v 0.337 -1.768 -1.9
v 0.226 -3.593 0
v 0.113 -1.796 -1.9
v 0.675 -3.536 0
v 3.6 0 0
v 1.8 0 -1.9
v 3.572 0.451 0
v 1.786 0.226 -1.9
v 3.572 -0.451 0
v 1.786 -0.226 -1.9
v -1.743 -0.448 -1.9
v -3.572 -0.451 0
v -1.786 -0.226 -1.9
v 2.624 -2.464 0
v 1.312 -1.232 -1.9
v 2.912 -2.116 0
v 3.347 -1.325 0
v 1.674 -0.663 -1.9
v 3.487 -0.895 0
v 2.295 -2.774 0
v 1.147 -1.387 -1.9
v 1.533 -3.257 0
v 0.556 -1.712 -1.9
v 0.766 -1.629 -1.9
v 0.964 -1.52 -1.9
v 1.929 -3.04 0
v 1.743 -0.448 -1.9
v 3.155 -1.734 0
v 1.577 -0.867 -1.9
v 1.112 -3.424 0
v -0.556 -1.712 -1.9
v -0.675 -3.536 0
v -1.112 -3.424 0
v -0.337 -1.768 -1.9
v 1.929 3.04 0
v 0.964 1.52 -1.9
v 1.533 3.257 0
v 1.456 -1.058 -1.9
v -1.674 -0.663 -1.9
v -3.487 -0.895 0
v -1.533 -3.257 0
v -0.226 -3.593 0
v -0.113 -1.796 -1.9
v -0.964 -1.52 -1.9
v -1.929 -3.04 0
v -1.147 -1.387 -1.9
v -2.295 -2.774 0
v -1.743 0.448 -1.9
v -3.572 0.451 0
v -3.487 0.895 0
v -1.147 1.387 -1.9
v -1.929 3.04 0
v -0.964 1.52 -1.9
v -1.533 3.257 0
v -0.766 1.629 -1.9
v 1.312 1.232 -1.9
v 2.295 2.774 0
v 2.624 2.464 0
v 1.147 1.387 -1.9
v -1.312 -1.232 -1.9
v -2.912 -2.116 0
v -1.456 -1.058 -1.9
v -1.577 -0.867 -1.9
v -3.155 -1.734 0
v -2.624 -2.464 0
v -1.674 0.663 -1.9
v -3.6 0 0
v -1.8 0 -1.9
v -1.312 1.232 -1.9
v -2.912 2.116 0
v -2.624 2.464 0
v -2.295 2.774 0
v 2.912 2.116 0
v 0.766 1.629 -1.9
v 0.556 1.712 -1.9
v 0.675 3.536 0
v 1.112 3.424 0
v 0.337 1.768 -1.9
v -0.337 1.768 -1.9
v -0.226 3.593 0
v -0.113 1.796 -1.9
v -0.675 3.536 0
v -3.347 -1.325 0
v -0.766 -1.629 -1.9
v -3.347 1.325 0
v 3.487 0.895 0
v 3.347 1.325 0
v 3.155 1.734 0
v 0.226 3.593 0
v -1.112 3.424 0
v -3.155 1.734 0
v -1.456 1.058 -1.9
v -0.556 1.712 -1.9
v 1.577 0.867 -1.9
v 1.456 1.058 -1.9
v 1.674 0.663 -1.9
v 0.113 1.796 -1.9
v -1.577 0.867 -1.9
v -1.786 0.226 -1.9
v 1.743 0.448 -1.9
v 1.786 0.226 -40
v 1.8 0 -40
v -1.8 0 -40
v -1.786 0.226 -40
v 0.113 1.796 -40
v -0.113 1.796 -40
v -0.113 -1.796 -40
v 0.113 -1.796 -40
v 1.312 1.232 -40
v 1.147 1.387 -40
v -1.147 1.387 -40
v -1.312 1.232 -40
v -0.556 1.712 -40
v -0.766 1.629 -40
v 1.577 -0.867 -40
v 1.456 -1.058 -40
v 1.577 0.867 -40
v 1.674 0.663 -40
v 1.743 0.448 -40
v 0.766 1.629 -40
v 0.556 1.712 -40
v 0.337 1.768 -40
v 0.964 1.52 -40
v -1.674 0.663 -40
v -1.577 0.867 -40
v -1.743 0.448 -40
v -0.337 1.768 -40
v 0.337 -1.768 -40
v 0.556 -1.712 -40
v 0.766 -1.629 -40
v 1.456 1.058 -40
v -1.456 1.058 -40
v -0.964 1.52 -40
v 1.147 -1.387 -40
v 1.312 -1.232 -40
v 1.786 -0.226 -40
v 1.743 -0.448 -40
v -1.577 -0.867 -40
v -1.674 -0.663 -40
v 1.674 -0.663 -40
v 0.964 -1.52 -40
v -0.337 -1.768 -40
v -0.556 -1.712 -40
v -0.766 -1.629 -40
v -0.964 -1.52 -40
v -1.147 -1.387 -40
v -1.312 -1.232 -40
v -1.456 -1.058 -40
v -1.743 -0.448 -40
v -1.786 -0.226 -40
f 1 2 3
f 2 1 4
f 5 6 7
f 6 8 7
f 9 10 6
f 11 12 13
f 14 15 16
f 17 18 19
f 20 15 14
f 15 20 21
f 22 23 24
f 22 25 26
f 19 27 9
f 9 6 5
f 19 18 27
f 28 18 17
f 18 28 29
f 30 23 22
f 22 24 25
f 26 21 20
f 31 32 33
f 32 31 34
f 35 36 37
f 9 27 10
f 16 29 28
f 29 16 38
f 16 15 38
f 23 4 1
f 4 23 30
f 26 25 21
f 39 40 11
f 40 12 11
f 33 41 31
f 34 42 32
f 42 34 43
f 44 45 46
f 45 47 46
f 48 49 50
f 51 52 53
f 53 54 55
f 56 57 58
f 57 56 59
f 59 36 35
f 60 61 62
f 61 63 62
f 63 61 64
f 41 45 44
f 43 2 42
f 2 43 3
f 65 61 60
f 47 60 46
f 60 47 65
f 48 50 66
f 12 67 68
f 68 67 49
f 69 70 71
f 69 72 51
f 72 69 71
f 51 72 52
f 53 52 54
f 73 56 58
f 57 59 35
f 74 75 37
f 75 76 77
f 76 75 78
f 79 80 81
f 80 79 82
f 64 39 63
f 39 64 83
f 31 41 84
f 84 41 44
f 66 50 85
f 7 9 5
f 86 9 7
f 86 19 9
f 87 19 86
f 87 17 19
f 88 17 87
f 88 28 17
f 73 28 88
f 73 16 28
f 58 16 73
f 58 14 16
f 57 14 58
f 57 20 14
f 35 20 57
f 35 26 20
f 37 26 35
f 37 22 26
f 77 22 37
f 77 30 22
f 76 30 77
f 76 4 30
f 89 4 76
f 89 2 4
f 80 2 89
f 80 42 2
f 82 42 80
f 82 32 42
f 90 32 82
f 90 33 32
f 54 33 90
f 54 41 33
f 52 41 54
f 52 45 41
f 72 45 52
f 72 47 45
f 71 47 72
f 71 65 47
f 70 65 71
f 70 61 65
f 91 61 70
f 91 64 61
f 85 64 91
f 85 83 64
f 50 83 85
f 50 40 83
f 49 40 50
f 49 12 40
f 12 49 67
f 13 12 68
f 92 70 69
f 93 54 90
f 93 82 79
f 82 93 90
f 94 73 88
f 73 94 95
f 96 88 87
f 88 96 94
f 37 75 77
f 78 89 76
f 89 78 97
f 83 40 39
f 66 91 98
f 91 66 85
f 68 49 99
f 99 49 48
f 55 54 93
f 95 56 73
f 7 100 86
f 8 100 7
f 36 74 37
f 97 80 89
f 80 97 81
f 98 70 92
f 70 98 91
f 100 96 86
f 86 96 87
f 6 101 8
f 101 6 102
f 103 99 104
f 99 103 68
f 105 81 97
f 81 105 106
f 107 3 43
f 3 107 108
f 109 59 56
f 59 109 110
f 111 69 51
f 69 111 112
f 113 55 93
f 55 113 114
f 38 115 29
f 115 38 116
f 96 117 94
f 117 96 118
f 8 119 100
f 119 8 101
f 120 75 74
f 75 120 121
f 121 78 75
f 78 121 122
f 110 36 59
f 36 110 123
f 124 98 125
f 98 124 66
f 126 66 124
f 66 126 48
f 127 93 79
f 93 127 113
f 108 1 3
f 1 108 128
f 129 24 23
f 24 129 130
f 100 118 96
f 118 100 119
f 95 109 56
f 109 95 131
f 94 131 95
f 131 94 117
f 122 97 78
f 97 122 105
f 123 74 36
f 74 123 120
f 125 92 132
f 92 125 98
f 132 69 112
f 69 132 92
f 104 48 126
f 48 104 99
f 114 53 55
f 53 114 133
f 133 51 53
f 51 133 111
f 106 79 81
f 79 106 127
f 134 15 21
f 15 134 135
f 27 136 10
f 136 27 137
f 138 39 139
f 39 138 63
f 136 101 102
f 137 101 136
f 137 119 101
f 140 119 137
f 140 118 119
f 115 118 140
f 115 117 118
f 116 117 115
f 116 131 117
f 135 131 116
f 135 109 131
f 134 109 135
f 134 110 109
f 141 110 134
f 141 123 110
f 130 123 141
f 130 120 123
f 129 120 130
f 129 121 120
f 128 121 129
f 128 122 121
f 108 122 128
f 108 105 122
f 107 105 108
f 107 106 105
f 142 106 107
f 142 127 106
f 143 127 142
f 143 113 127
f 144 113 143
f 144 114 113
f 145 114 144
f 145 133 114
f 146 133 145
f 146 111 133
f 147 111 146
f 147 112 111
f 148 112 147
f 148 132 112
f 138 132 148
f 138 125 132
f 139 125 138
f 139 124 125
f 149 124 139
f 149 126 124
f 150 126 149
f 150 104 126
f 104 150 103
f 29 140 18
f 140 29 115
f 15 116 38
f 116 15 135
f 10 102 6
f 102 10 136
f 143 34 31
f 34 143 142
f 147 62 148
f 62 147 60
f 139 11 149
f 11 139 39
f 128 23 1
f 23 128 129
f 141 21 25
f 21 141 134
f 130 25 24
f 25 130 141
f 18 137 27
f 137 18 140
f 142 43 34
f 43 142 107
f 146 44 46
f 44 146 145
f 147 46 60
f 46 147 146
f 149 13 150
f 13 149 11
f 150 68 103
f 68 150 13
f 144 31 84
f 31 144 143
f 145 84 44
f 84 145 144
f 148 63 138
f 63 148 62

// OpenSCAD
$fn = 50;


difference() {
	union() {
		translate(v = [0, 0, -1.9000000000]) {
			rotate(a = [0, 0, 0]) {
				cylinder(h = 1.9000000000, r1 = 1.8000000000, r2 = 3.6000000000);
			}
		}
		translate(v = [0, 0, -40]) {
			rotate(a = [0, 0, 0]) {
				cylinder(h = 40, r = 1.8000000000);
			}
		}
	}
	union();
}
